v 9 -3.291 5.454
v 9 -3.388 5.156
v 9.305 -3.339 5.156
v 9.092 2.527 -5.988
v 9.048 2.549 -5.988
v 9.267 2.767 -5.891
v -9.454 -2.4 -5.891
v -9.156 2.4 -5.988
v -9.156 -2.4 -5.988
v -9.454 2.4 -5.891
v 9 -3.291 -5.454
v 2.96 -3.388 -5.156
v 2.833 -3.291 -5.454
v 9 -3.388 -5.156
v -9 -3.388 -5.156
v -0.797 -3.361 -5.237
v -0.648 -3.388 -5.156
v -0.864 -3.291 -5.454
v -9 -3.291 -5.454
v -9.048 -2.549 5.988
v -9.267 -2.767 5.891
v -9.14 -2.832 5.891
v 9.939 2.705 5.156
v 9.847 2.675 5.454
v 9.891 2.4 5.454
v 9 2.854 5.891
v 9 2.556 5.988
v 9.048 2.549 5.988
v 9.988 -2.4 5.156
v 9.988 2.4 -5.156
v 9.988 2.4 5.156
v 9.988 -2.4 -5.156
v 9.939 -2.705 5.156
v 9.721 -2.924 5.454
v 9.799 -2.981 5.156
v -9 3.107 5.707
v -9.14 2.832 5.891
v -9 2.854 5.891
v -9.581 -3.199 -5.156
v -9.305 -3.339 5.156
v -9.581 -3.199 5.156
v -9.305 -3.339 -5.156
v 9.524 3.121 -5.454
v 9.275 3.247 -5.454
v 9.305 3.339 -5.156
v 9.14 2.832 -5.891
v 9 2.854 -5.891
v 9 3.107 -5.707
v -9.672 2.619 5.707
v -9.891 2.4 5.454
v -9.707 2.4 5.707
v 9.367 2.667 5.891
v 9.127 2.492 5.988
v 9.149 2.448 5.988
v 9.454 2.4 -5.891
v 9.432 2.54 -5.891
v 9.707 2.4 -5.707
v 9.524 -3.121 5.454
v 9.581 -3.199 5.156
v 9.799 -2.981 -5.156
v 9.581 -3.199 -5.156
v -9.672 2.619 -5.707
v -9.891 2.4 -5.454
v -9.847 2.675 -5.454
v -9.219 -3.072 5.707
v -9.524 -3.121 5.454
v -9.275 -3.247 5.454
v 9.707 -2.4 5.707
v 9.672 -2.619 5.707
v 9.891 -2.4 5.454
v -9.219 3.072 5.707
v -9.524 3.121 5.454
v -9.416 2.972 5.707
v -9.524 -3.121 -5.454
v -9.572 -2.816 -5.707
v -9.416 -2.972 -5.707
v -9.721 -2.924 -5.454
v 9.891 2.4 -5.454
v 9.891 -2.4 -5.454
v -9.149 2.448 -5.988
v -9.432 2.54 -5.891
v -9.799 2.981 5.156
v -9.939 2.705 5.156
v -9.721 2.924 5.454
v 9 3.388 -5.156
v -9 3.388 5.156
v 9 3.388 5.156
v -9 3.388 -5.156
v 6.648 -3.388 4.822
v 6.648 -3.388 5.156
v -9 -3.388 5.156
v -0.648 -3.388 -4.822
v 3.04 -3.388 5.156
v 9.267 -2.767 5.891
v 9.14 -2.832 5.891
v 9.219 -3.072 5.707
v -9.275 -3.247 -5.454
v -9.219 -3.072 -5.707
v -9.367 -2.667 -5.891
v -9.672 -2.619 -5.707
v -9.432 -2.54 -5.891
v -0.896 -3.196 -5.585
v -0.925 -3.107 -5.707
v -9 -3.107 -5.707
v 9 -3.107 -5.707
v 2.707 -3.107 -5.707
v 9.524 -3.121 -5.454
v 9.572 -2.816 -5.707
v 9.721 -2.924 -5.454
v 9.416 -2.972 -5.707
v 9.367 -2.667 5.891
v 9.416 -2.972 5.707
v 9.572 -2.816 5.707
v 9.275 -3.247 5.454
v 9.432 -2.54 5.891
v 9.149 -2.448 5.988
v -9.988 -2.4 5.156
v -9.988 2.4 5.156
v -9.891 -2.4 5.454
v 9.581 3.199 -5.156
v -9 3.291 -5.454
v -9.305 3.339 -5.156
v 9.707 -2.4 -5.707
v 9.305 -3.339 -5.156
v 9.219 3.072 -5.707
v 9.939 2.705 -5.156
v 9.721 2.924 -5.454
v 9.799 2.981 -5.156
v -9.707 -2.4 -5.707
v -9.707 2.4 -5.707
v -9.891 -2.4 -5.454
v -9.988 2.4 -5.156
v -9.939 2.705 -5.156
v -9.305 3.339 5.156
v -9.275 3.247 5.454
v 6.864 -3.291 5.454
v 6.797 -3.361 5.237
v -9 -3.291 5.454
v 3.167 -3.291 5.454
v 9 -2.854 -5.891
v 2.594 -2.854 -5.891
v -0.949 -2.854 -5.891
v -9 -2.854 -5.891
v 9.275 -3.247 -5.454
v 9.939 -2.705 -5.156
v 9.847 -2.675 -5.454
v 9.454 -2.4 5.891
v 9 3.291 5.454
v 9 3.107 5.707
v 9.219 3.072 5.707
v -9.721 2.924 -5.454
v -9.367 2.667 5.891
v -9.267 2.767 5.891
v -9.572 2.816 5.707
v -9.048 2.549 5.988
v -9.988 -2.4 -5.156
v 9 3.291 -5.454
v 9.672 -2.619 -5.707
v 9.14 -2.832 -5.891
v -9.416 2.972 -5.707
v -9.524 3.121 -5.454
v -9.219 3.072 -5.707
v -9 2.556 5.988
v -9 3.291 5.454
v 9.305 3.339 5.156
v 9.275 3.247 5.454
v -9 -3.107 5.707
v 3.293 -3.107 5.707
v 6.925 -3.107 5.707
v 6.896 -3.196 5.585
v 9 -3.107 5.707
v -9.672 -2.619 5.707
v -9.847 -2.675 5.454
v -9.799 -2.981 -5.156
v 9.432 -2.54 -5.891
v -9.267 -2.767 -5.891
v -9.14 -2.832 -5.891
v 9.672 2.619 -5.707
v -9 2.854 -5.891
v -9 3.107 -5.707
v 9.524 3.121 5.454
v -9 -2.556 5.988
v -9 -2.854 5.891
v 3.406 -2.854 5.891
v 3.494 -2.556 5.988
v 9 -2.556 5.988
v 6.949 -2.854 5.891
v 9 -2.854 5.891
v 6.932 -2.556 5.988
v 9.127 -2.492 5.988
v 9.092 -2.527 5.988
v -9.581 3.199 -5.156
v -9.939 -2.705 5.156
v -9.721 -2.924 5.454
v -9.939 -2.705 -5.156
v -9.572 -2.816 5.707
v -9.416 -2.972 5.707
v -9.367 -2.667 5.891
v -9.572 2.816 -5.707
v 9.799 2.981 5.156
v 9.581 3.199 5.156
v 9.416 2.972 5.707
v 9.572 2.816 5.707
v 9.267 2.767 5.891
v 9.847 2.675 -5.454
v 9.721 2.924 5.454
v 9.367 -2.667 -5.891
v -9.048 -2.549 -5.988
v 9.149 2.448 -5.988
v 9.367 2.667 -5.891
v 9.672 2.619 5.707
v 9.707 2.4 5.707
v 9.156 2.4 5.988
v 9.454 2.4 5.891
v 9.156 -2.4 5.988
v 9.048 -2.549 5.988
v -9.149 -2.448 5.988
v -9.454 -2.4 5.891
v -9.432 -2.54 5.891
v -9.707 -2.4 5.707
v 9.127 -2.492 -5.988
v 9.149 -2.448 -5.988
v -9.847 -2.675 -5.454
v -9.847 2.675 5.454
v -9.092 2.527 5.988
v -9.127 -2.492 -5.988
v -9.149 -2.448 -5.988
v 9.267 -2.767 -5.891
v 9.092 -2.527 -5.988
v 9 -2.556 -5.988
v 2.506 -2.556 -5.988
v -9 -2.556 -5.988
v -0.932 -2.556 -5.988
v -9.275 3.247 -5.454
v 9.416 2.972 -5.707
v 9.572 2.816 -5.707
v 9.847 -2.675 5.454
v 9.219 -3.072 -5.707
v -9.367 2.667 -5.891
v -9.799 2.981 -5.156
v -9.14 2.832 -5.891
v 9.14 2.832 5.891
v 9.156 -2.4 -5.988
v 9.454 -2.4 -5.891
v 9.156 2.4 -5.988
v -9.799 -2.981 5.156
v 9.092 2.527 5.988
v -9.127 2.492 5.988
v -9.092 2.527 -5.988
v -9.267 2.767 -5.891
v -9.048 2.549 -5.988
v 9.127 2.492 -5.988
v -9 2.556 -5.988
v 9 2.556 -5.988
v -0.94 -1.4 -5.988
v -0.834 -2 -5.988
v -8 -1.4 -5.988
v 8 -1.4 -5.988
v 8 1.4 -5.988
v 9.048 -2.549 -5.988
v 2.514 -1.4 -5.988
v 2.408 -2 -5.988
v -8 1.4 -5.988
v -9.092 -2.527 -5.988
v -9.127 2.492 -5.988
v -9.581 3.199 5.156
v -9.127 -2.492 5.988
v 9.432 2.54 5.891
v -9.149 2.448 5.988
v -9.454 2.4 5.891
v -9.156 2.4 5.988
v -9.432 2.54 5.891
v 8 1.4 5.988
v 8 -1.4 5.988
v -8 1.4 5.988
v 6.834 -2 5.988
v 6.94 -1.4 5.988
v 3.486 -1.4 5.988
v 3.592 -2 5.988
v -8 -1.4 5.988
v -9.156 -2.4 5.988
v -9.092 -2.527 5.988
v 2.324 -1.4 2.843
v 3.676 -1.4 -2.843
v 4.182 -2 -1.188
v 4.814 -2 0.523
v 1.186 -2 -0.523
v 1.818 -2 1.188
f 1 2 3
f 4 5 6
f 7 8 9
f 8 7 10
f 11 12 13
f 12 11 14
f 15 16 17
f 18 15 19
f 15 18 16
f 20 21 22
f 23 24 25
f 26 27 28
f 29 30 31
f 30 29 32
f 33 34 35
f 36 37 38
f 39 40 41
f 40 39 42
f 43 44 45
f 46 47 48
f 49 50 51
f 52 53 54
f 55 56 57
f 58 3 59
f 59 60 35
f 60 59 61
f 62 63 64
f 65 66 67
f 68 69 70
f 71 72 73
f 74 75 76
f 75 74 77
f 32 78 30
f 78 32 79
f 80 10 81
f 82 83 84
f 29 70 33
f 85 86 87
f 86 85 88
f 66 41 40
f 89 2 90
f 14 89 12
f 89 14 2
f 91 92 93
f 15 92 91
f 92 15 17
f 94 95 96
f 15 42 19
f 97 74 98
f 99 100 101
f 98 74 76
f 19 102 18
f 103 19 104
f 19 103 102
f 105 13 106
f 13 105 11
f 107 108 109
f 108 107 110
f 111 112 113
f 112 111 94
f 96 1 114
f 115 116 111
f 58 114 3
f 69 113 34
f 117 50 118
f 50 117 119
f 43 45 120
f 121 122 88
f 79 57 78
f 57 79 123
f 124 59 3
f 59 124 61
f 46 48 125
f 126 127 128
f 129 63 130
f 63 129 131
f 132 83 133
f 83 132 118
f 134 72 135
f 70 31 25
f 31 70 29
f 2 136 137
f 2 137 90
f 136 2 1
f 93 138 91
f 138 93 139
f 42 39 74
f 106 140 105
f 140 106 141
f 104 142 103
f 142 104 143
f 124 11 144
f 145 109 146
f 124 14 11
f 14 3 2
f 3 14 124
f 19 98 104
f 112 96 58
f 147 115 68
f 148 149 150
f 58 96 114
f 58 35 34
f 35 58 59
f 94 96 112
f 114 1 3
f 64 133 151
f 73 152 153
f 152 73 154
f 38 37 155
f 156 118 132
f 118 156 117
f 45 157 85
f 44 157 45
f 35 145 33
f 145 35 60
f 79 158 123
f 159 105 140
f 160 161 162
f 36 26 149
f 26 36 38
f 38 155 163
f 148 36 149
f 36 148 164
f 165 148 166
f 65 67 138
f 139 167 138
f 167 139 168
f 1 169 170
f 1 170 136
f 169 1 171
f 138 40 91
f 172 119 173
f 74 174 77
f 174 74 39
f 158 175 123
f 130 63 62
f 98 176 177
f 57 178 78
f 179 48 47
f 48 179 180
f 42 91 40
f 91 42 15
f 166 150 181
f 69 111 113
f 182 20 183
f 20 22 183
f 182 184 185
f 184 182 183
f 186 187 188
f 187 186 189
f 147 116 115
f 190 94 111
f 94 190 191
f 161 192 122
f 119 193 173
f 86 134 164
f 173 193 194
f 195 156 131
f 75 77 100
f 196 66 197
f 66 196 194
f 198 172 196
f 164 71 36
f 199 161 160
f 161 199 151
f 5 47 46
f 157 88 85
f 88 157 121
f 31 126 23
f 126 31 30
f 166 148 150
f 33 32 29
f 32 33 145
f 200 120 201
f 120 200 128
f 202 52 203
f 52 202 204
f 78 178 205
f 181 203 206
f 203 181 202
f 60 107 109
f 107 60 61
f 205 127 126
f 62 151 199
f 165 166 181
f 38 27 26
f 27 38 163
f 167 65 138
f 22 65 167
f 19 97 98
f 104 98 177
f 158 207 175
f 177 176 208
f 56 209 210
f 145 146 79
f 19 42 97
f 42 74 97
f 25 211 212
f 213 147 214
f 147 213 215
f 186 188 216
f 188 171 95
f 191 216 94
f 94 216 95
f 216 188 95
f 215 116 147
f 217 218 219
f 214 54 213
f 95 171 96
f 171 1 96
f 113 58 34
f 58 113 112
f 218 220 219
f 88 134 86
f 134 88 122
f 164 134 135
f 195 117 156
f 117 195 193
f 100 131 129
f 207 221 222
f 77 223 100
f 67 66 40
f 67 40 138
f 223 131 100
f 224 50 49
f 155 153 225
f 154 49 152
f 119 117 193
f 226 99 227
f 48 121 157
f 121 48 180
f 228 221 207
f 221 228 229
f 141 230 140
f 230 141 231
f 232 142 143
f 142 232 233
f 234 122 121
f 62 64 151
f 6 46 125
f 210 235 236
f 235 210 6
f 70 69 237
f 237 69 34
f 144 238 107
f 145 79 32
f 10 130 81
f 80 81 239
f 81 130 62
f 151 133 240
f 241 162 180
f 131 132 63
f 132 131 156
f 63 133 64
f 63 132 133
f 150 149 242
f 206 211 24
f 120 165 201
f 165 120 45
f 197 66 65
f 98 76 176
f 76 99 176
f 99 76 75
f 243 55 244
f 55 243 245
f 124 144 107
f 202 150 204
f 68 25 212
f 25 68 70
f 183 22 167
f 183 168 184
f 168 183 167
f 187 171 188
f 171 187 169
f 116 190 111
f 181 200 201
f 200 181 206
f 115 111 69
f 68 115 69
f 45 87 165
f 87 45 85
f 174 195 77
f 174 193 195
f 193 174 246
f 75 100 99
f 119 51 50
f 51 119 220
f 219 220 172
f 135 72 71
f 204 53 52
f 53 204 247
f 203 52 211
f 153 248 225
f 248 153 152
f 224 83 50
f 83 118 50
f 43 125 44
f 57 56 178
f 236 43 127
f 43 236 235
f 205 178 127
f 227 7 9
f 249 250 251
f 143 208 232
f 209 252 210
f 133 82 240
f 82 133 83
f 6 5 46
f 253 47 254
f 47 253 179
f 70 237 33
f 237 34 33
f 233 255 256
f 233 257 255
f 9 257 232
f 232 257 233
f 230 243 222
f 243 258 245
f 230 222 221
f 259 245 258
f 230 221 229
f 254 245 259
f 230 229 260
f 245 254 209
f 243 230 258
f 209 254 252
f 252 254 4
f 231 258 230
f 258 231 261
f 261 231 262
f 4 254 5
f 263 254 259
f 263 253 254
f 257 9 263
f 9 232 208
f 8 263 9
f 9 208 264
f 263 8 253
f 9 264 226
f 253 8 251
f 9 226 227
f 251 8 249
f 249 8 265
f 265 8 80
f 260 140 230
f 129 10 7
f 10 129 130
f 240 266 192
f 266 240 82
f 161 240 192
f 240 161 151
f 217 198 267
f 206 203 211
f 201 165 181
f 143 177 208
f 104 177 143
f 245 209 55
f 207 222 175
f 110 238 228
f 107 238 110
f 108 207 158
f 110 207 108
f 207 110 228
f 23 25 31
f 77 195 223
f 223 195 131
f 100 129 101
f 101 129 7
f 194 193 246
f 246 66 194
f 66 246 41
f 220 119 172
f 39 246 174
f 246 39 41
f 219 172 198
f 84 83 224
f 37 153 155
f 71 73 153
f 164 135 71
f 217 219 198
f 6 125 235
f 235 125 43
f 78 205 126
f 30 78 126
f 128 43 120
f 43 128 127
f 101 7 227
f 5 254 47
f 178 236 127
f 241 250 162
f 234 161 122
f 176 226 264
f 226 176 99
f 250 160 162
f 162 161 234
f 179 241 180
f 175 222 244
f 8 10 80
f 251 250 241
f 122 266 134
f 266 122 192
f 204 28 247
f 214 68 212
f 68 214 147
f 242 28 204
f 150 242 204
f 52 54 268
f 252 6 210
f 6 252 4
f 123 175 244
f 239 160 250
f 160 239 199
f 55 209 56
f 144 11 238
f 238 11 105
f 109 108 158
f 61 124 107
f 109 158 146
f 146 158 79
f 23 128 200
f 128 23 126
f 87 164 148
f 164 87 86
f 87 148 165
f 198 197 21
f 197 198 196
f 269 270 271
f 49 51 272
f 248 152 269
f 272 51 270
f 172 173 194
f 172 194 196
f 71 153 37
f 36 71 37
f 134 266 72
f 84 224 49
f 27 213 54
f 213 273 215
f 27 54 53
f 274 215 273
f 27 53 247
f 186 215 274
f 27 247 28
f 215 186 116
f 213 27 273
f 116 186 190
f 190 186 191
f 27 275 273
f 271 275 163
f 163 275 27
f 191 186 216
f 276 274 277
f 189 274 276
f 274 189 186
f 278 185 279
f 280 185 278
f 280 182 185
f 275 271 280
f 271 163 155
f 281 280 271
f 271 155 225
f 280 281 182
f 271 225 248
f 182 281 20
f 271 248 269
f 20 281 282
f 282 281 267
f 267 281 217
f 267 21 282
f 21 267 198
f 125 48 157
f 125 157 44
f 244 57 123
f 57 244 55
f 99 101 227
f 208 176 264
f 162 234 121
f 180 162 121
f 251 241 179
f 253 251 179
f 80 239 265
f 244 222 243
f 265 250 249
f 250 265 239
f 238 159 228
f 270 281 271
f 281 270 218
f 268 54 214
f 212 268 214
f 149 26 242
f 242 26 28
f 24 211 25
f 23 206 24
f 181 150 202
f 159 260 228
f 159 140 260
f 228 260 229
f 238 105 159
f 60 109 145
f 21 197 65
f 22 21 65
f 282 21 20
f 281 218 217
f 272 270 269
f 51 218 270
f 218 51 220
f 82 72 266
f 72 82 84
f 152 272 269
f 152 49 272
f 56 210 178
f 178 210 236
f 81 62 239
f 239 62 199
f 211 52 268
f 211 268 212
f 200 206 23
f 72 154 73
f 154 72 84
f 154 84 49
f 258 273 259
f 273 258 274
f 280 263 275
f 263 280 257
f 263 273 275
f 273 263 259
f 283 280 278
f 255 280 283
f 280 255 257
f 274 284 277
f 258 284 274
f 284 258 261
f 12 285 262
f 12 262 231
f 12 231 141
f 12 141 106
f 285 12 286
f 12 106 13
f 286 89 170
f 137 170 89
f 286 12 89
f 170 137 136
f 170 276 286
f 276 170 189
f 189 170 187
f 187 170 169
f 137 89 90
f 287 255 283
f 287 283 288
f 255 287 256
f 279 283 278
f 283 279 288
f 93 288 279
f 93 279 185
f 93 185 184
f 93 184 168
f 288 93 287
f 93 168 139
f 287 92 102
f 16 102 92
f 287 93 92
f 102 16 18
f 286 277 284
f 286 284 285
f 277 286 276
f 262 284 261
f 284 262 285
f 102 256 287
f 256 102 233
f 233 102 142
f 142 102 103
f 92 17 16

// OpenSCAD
x=15 + 1.0;
y=2.5 + 0.3;
z=10;

difference() {
    // body
    minkowski() {
        cube([x+2, y+2, z], center=true);
        sphere(r=1, $fn=20);
    }

    // inner hole
    cube([x, y, z+4], center=true);

    // opening
    translate([3, -2, 0])
        rotate([0, 20, 10])
        cube([3, 4, z+4], center=true);
    translate([3, -2, 0])
        rotate([0, 20, -10])
        cube([3, 4, z+4], center=true);
}
